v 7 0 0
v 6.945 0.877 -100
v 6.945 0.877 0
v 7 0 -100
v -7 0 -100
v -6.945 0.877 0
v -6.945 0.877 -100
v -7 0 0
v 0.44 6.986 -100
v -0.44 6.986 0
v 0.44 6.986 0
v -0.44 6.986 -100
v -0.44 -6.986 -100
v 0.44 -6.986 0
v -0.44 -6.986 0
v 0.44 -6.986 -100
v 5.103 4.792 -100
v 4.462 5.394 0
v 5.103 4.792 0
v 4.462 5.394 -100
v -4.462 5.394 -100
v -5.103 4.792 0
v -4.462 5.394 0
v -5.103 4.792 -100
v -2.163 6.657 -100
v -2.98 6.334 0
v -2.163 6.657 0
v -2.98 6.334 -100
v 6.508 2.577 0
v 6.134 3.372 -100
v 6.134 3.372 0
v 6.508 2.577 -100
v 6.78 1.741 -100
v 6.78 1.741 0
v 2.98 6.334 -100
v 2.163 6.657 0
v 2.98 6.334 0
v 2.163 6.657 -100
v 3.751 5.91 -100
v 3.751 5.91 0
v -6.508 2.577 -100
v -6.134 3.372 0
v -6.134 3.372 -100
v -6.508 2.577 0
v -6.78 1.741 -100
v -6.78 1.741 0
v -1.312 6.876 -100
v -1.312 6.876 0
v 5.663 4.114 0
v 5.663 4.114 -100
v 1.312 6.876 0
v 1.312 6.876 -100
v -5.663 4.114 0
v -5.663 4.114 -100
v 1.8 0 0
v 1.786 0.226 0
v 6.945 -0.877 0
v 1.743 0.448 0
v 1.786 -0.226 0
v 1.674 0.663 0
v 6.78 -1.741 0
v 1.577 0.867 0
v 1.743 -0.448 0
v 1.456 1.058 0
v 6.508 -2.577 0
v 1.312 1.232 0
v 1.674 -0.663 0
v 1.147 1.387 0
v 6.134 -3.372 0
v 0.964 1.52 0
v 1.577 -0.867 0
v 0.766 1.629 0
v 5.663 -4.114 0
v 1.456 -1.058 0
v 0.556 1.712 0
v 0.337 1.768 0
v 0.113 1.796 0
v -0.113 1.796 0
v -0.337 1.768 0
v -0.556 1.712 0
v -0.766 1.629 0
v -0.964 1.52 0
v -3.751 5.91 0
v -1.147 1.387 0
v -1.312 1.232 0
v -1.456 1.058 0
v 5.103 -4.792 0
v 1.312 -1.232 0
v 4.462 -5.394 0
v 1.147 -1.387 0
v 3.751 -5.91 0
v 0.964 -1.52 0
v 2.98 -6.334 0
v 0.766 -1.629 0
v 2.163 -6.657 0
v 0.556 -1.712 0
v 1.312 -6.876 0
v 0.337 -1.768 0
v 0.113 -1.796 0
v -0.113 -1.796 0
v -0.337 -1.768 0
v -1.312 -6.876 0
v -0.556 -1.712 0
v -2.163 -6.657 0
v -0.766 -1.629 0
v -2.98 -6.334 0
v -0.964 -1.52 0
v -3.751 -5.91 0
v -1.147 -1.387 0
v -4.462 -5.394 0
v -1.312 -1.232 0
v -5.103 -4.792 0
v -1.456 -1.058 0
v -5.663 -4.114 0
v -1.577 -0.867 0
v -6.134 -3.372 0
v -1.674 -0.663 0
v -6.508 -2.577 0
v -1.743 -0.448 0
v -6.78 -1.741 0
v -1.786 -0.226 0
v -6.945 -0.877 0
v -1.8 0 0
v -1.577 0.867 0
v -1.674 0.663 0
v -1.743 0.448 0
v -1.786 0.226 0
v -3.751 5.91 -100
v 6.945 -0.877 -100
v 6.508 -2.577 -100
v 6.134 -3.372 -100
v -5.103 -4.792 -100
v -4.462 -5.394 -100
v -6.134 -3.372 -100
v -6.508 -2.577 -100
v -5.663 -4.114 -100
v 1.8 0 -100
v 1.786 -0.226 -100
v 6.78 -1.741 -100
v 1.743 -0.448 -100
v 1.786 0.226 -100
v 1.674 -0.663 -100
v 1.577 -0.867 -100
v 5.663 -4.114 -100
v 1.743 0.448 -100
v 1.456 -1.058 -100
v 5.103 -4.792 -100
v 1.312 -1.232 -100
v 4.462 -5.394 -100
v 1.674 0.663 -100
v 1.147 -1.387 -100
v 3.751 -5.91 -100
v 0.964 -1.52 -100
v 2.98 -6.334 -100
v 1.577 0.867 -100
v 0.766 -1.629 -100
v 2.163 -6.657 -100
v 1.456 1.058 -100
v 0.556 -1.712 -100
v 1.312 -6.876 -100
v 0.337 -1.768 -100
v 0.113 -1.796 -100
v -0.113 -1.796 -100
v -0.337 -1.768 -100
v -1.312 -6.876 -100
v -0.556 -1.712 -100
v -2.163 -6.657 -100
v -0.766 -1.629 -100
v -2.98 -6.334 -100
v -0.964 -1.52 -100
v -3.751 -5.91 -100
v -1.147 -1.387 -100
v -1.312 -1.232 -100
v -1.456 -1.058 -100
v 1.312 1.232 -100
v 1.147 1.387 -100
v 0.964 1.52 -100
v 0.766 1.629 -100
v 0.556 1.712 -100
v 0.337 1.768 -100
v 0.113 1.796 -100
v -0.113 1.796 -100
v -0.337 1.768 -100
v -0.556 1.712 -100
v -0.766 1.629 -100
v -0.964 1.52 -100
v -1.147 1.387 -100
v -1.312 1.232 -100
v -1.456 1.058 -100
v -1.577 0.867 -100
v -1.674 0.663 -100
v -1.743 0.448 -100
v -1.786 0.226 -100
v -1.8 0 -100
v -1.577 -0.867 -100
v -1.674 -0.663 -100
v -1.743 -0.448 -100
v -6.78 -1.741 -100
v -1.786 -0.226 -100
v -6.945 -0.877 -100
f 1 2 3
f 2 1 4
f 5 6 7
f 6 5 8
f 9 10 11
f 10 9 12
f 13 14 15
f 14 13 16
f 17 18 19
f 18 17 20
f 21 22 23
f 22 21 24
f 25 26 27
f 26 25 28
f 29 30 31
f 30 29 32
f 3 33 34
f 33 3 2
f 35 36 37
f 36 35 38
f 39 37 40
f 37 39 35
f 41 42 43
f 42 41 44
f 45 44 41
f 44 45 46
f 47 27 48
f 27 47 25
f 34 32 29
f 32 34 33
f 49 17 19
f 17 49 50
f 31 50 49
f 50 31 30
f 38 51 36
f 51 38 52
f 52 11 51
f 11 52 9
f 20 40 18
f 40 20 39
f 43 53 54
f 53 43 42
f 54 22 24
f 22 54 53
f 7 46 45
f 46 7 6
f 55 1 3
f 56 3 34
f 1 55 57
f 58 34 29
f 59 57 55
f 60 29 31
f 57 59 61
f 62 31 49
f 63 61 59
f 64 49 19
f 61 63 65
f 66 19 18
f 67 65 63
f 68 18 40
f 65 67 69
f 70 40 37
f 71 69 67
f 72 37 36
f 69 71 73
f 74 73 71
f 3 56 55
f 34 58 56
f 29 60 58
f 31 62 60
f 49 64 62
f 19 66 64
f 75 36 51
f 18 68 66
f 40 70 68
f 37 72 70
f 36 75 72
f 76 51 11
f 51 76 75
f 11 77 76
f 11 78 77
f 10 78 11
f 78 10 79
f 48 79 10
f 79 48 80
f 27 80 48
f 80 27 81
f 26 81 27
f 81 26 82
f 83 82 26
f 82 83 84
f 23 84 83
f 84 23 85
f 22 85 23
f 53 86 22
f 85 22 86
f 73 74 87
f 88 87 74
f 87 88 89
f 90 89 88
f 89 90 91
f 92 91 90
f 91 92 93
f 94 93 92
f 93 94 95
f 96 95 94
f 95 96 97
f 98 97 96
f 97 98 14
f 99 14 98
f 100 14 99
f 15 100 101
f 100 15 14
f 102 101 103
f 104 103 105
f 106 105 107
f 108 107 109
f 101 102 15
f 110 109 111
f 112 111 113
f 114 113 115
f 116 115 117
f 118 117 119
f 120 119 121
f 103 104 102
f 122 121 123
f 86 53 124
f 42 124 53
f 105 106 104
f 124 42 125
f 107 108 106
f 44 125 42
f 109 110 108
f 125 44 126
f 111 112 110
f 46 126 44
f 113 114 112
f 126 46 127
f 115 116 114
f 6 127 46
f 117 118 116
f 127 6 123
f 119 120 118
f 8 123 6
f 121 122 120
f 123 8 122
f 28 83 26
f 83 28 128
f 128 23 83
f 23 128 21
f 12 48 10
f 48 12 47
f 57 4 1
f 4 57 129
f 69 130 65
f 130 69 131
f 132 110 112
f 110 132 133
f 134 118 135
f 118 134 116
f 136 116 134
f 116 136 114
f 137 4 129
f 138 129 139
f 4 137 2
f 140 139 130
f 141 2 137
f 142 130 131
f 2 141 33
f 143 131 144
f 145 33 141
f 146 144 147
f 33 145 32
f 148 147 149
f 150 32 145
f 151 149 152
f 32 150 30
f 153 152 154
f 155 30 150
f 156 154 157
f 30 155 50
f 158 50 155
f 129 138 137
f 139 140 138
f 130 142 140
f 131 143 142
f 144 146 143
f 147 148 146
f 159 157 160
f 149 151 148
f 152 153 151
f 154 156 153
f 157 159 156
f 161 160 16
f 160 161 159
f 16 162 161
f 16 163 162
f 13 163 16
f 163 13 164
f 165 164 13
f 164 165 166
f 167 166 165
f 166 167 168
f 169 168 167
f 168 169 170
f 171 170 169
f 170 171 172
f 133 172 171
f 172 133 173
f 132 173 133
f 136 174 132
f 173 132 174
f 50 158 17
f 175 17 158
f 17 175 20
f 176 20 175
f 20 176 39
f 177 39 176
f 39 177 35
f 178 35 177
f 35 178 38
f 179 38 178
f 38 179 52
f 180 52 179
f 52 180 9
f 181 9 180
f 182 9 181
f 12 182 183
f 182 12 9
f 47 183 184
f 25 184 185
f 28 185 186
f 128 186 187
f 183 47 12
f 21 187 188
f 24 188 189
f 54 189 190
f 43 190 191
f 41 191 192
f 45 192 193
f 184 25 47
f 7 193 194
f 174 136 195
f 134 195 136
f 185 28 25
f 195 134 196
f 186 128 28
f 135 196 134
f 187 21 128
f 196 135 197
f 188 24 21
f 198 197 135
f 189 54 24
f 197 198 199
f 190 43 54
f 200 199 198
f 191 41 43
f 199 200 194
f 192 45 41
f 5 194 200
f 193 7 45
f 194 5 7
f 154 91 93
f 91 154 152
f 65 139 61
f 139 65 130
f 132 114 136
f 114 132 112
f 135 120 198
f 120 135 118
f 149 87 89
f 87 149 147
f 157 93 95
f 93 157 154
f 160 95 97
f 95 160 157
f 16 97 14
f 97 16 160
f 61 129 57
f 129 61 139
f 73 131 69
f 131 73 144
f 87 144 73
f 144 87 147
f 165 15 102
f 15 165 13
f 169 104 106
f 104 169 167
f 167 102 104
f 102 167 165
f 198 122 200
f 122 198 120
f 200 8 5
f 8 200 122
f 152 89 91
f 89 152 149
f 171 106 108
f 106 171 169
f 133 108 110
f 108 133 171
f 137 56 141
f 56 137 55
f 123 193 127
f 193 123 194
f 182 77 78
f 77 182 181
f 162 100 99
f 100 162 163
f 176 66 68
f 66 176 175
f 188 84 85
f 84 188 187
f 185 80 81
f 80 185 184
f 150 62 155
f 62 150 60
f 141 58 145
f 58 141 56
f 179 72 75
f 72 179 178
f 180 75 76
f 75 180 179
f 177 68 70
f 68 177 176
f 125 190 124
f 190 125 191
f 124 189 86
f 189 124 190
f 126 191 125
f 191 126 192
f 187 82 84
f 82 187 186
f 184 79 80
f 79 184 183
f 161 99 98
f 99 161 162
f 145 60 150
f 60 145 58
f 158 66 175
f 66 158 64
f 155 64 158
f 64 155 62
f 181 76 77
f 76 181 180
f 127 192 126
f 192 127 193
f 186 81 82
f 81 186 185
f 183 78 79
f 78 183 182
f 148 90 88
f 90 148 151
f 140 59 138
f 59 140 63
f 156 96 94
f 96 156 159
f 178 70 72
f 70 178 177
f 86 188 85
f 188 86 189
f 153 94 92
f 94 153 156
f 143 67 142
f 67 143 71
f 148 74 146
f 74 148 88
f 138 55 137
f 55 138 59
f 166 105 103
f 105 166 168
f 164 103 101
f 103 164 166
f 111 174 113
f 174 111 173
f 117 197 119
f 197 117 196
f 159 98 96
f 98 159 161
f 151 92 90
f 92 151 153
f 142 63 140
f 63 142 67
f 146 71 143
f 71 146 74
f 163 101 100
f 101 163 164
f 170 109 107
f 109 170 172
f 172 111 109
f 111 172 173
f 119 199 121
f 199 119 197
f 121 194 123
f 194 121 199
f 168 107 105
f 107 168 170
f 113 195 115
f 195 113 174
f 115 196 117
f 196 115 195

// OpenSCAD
$fn = 50;


difference() {
	union() {
		translate(v = [0, 0, -100.0000000000]) {
			cylinder(h = 100, r = 7.0000000000);
		}
		cylinder(h = 0, r = 16.0000000000);
	}
	union() {
		#translate(v = [0, 0, -100]) {
			cylinder(h = 100, r = 1.8000000000);
		}
	}
}
